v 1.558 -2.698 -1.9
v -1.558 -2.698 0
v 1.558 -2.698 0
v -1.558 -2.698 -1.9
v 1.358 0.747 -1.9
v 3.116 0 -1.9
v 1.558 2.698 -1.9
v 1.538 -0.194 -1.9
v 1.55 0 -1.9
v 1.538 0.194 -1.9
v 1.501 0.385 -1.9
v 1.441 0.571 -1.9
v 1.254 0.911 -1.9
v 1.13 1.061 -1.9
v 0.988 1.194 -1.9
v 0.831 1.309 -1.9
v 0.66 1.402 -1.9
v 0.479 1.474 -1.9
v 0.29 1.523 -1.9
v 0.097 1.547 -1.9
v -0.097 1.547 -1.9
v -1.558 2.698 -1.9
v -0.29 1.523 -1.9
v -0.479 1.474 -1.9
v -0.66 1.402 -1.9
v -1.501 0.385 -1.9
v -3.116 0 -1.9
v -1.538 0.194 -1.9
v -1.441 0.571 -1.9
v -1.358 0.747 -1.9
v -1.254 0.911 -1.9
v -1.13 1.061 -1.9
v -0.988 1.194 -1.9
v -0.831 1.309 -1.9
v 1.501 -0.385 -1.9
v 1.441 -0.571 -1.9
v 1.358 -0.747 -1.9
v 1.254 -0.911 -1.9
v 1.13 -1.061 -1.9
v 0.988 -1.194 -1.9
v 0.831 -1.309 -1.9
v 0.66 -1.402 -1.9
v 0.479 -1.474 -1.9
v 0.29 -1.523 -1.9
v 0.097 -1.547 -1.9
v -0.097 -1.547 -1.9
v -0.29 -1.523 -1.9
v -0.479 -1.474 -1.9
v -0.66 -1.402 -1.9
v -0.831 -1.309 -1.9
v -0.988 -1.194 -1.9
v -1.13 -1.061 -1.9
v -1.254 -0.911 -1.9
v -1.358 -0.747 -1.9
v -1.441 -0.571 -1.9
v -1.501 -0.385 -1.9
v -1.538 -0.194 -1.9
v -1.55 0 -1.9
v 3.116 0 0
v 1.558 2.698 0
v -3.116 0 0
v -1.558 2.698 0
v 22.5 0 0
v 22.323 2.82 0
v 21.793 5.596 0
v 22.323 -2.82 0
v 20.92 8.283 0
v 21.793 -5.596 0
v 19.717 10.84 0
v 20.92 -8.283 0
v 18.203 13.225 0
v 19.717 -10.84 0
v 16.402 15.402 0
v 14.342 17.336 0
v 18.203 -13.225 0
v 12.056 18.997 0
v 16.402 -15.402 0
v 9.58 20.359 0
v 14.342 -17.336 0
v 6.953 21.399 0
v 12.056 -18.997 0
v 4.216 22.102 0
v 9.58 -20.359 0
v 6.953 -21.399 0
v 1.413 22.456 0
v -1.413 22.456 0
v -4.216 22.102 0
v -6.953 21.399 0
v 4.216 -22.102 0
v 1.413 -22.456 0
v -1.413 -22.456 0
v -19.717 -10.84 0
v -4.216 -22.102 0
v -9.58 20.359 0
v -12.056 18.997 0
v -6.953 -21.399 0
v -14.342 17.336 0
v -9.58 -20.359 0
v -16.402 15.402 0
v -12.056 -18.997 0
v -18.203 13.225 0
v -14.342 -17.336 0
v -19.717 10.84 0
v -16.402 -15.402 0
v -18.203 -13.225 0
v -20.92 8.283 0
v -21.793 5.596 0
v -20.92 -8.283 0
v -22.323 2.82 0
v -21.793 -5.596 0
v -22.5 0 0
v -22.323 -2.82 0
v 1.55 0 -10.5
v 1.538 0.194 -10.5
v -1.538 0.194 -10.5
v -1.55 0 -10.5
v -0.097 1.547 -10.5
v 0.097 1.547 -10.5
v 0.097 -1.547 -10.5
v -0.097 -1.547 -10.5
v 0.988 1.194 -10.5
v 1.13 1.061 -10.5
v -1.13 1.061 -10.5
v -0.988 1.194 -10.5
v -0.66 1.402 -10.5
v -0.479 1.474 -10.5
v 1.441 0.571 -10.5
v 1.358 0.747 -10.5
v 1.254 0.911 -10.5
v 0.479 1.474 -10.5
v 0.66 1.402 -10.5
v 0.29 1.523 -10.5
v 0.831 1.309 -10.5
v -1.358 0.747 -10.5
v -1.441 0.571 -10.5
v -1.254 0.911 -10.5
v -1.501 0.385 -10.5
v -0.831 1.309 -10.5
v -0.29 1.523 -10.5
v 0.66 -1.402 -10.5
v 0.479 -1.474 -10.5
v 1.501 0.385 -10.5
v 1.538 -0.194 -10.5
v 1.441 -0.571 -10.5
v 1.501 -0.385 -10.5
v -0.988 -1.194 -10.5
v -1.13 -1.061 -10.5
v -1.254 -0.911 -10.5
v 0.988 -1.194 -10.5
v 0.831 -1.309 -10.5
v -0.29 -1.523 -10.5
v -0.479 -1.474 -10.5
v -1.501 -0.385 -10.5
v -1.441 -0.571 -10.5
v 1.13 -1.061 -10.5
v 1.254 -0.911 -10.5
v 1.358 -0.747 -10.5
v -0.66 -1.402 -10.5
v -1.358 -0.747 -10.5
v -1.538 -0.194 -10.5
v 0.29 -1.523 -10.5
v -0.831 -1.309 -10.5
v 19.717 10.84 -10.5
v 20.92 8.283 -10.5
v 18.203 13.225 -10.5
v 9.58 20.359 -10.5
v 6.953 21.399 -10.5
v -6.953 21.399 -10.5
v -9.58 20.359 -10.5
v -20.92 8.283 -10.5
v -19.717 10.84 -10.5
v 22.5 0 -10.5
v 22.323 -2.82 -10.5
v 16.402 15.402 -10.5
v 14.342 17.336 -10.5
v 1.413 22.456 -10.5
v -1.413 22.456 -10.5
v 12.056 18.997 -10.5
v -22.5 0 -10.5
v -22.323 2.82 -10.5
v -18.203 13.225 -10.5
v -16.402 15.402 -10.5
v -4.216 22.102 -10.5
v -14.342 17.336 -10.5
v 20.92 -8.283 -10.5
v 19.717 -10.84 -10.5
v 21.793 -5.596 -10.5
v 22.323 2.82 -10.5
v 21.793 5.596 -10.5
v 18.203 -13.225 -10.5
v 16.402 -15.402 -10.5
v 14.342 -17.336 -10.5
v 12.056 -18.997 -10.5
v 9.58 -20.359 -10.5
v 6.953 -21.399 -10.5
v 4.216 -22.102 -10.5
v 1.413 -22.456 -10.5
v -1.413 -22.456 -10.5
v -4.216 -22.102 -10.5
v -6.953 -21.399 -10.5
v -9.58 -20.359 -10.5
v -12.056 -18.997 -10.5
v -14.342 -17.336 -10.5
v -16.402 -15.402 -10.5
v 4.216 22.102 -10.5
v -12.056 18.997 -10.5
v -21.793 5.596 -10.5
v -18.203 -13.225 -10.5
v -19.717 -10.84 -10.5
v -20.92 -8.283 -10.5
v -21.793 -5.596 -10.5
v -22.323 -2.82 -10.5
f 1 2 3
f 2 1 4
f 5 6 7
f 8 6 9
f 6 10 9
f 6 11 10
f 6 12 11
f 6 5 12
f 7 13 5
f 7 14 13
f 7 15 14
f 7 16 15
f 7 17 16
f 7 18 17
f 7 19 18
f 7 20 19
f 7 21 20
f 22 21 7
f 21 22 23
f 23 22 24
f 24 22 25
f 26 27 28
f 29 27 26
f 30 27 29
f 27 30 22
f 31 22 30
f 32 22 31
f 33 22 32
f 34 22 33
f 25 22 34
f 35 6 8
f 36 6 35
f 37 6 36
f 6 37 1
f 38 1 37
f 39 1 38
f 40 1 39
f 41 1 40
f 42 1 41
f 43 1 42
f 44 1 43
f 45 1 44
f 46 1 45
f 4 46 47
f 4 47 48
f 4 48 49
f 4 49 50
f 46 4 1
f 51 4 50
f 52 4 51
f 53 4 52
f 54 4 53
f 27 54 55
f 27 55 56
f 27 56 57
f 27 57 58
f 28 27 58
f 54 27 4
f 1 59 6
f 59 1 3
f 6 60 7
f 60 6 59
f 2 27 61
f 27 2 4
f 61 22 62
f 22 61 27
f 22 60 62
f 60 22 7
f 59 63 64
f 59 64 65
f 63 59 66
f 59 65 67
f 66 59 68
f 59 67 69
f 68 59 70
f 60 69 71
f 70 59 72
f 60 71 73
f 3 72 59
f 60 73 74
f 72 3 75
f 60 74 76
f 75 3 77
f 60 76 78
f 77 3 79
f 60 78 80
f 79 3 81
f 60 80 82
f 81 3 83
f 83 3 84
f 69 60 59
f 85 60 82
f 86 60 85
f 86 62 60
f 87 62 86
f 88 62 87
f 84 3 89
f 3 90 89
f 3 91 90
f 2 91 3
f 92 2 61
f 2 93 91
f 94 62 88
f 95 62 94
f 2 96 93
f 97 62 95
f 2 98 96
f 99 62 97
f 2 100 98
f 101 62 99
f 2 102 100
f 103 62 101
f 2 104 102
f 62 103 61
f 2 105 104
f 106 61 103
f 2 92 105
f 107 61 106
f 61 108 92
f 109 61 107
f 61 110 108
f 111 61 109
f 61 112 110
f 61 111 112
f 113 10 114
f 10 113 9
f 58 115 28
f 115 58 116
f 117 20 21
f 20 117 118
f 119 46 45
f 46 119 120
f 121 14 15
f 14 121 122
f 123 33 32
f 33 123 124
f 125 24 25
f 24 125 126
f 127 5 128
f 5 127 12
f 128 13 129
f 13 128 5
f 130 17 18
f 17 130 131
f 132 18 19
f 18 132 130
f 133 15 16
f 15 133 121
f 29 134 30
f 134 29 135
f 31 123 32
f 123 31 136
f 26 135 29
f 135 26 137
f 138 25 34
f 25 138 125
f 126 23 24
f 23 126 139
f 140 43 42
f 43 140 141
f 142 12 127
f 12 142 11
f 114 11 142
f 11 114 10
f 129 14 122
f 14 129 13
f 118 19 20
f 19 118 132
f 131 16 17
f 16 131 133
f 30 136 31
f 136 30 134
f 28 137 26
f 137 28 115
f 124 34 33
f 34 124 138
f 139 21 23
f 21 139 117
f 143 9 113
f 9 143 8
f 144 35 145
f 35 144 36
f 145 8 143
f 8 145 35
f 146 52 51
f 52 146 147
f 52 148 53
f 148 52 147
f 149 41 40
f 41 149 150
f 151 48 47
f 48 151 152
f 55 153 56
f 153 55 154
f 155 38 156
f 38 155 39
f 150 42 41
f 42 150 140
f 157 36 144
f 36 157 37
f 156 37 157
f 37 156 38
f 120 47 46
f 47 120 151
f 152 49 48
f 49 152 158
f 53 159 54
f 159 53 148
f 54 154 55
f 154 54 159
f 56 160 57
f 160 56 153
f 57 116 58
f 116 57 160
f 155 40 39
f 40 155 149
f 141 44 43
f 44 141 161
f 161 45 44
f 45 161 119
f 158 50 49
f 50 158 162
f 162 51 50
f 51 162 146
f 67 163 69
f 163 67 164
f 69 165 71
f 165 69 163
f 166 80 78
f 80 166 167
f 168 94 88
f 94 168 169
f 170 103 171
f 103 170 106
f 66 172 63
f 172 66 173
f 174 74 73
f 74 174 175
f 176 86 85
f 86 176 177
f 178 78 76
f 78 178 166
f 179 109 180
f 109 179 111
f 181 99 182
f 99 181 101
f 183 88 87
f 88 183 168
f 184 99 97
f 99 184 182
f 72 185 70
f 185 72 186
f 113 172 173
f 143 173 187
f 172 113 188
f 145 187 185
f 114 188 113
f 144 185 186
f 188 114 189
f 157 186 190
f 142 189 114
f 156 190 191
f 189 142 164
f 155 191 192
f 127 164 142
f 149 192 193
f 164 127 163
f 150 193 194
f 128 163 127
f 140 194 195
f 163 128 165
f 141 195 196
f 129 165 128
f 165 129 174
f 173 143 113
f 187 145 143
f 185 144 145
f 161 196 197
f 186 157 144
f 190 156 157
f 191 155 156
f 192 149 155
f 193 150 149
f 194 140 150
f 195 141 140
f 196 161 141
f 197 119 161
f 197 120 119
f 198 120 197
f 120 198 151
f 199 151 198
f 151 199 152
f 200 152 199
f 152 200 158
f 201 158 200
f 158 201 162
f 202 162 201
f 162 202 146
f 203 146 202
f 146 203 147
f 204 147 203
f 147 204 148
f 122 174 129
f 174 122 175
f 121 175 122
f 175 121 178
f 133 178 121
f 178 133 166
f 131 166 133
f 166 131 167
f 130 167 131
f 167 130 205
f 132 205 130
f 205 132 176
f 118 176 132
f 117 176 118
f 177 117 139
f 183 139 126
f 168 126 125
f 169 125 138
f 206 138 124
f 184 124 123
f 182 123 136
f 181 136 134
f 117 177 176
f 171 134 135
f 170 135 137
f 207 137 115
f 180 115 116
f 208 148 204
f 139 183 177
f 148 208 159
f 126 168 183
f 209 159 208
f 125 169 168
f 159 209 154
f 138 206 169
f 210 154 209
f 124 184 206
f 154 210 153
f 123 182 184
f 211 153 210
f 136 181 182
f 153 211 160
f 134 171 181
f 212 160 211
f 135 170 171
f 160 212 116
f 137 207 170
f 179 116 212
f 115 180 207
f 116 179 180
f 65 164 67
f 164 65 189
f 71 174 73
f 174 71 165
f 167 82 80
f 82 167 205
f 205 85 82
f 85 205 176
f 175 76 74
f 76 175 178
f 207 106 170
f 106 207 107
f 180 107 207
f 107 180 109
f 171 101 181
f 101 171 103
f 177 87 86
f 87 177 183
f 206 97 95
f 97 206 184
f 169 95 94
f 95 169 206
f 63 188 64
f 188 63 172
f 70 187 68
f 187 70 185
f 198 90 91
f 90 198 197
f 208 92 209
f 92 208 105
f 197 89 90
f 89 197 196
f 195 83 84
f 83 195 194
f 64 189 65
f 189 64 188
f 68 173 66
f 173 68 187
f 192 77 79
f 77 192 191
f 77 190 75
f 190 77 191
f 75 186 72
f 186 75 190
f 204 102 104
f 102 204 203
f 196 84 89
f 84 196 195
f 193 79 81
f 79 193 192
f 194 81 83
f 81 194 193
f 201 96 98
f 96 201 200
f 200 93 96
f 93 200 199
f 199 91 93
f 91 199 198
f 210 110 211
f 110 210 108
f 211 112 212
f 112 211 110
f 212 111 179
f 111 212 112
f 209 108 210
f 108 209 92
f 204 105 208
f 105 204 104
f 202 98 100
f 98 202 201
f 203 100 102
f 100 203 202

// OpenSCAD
$fn = 50;

difference() {
	union() {
		translate(v = [0, 0, -10.5]) {
			cylinder(h = 10.5, r = 22.5);
		}
	}
	union() {
		translate(v = [0, 0, 0]) {
			rotate(a = [0, 0, 0]) {
				difference() {
					union() {
						translate(v = [0, 0, -1.9]) {
							linear_extrude(height = 1.9) {
								polygon(points = [[3.1158, 0.0], [1.5579000000000005, 2.698361953111554], [-1.5578999999999994, 2.6983619531115544], [-3.1158, 3.815754496783323e-16], [-1.5579000000000014, -2.6983619531115535], [1.557899999999998, -2.6983619531115552]]);
							}
						}
					}
					union();
				}
			}
		}
		#translate(v = [0, 0, -100.0]) {
			cylinder(h = 200, r = 1.55);
		}
	}
}
